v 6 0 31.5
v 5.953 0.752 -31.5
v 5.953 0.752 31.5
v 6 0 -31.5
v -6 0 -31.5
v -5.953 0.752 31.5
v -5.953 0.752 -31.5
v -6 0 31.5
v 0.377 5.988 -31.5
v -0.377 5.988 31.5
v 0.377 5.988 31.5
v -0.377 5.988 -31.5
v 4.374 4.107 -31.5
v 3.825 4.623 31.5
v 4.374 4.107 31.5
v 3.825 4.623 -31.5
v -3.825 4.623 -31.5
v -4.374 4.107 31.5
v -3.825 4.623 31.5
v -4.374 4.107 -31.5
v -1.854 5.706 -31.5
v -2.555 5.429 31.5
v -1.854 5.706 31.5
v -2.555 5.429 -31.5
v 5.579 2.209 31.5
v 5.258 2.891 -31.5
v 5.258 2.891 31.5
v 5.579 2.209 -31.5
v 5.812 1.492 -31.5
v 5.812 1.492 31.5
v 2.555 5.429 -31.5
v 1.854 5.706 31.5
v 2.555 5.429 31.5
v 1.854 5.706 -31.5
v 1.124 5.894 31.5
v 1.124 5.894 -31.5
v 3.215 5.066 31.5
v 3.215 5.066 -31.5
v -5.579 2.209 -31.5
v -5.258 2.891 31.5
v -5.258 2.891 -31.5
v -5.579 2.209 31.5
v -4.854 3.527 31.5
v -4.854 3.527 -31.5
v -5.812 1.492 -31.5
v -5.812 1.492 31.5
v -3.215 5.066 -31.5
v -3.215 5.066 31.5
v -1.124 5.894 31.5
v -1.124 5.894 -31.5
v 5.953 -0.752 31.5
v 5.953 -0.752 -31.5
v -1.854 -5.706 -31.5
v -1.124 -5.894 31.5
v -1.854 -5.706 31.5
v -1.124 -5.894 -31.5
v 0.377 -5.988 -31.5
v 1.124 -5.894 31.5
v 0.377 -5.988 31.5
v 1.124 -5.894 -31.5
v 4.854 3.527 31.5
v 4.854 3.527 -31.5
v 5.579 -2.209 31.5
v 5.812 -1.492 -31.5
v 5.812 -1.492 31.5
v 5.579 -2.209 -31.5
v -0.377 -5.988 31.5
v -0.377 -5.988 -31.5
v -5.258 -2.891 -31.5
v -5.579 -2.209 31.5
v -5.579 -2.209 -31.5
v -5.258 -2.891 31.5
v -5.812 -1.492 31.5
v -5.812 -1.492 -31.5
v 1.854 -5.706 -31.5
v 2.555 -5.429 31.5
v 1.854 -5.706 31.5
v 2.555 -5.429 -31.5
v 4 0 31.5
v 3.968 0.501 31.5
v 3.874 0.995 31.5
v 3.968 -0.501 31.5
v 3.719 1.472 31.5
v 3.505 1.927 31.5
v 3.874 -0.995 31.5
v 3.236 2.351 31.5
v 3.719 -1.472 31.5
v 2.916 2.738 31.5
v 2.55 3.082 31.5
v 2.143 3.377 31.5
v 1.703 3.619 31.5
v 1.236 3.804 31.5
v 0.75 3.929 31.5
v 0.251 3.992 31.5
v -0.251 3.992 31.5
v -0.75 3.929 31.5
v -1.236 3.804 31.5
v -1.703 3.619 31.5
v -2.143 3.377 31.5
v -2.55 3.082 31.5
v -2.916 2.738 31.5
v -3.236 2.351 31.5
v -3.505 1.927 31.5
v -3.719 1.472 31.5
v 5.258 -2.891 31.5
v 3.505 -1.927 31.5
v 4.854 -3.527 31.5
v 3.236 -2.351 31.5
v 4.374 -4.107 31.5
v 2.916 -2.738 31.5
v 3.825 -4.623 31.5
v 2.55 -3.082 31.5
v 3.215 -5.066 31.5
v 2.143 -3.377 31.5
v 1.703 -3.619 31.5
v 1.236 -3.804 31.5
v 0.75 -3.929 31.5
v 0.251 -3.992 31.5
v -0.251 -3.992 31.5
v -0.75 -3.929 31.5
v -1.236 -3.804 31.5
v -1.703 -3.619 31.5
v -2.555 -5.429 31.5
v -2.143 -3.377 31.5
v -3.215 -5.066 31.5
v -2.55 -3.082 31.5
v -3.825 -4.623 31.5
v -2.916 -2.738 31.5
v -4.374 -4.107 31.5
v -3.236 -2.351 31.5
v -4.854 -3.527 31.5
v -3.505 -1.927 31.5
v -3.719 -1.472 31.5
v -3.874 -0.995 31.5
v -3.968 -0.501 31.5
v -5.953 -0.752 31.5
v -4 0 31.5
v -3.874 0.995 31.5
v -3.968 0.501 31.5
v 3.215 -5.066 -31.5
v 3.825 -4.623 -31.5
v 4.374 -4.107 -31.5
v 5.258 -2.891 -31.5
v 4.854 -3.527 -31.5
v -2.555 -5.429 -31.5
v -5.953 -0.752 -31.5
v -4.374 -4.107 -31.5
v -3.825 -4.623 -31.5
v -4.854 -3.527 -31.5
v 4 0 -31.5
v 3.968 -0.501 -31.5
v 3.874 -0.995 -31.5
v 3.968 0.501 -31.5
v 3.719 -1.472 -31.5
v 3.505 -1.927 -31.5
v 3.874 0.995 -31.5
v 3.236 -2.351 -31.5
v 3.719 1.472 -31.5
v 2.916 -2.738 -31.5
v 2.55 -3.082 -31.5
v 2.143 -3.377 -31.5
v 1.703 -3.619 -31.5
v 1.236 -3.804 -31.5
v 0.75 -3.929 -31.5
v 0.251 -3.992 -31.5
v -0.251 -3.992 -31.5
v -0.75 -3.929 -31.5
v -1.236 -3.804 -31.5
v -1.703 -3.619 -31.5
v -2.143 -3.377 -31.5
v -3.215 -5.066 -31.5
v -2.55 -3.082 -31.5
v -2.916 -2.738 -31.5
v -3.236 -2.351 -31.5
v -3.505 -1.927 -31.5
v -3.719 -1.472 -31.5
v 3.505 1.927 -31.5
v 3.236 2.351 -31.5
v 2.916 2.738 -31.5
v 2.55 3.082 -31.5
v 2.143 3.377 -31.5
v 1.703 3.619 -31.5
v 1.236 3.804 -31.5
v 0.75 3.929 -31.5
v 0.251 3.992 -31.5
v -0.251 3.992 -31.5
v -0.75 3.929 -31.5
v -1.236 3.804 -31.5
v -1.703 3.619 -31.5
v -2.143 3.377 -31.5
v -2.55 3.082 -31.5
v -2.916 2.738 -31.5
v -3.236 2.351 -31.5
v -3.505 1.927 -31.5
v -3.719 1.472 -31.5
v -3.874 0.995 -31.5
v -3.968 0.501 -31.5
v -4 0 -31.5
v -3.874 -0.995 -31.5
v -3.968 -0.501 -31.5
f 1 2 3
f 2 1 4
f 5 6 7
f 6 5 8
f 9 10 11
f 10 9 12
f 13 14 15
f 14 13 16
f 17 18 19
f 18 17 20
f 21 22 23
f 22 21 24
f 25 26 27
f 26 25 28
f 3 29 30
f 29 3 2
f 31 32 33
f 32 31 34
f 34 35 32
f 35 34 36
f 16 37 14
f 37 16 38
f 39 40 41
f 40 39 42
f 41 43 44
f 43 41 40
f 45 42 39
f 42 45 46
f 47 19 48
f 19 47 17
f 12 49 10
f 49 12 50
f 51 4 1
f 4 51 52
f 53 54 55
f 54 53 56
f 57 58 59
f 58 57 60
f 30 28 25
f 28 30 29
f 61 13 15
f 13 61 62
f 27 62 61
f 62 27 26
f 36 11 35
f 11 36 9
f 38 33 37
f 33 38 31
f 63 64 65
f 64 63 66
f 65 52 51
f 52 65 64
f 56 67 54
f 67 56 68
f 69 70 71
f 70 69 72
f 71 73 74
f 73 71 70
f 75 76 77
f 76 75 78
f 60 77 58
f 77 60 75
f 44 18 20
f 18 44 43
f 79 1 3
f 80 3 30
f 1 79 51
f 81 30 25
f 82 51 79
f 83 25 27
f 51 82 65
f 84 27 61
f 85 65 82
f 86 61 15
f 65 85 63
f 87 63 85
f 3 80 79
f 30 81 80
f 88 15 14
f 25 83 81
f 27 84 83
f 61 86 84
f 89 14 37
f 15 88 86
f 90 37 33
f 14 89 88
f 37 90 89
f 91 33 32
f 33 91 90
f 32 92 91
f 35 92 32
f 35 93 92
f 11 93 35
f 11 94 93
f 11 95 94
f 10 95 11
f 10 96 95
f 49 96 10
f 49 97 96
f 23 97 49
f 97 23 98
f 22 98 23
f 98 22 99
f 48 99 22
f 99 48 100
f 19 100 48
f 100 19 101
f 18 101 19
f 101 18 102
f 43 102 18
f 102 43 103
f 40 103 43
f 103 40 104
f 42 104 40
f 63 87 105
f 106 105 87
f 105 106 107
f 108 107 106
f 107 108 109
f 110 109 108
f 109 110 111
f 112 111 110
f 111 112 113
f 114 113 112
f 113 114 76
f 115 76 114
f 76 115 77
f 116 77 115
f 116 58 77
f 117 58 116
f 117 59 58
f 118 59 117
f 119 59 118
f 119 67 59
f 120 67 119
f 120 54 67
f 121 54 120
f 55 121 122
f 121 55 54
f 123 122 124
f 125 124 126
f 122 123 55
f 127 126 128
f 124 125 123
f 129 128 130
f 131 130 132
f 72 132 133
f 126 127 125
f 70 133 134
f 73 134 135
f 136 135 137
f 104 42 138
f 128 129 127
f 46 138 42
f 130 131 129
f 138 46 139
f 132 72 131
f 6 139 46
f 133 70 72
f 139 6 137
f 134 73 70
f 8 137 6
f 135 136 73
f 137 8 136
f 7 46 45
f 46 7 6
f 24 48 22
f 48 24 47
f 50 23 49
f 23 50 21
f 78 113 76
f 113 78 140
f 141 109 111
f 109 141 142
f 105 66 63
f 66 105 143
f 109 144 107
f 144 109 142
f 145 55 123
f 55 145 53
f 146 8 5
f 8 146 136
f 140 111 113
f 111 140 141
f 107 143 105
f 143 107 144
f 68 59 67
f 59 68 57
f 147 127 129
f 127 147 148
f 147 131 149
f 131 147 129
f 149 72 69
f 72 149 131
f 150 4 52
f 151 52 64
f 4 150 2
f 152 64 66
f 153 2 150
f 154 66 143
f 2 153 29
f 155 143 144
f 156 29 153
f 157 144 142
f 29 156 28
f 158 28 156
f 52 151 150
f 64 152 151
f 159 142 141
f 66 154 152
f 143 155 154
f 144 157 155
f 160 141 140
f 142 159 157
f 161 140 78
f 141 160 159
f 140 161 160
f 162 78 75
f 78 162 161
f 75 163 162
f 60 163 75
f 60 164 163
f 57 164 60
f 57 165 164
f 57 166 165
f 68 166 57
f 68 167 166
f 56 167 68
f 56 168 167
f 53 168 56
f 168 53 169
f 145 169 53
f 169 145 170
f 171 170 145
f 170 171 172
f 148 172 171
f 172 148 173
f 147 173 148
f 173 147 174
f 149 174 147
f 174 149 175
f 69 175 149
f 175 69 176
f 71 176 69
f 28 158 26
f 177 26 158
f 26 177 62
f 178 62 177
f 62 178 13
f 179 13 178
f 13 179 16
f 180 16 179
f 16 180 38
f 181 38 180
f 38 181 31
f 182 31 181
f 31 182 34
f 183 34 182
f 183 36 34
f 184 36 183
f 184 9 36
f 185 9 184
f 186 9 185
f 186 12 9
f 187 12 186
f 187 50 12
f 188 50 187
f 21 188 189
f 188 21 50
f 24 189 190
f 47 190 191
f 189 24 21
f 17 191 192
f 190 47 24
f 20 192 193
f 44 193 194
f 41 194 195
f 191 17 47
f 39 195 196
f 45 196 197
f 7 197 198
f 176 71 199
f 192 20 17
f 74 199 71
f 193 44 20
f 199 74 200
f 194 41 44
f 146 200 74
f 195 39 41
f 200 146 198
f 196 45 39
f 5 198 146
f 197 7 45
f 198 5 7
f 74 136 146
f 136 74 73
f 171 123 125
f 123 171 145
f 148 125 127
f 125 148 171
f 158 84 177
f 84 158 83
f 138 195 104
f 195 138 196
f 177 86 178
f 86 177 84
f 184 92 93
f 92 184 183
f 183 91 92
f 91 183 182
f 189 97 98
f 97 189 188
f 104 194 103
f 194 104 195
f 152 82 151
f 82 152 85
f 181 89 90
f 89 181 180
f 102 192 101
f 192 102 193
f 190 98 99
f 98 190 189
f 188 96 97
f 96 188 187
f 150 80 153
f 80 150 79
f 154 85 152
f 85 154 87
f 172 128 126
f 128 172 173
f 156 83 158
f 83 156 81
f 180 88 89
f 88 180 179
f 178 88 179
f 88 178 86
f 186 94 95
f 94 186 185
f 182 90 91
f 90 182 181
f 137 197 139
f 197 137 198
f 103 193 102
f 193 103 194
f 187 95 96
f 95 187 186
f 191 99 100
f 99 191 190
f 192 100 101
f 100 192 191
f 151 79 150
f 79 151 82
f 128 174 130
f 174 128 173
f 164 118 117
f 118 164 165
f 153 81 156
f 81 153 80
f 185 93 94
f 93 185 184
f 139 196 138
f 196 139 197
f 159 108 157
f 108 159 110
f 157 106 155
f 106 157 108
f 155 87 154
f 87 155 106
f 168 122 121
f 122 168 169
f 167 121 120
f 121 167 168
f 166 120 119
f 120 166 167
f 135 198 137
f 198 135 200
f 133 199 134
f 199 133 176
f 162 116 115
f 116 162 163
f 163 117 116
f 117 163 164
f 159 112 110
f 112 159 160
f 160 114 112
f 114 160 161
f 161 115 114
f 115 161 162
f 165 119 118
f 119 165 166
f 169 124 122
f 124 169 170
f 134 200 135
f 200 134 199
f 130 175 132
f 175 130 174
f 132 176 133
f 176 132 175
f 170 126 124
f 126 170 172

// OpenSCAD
$fn = 50;


difference() {
	union() {
		translate(v = [0, 0, -31.5000000000]) {
			cylinder(h = 63, r = 6.0000000000);
		}
	}
	union() {
		translate(v = [0, 0, -100.0000000000]) {
			cylinder(h = 200, r = 4.0000000000);
		}
	}
}
